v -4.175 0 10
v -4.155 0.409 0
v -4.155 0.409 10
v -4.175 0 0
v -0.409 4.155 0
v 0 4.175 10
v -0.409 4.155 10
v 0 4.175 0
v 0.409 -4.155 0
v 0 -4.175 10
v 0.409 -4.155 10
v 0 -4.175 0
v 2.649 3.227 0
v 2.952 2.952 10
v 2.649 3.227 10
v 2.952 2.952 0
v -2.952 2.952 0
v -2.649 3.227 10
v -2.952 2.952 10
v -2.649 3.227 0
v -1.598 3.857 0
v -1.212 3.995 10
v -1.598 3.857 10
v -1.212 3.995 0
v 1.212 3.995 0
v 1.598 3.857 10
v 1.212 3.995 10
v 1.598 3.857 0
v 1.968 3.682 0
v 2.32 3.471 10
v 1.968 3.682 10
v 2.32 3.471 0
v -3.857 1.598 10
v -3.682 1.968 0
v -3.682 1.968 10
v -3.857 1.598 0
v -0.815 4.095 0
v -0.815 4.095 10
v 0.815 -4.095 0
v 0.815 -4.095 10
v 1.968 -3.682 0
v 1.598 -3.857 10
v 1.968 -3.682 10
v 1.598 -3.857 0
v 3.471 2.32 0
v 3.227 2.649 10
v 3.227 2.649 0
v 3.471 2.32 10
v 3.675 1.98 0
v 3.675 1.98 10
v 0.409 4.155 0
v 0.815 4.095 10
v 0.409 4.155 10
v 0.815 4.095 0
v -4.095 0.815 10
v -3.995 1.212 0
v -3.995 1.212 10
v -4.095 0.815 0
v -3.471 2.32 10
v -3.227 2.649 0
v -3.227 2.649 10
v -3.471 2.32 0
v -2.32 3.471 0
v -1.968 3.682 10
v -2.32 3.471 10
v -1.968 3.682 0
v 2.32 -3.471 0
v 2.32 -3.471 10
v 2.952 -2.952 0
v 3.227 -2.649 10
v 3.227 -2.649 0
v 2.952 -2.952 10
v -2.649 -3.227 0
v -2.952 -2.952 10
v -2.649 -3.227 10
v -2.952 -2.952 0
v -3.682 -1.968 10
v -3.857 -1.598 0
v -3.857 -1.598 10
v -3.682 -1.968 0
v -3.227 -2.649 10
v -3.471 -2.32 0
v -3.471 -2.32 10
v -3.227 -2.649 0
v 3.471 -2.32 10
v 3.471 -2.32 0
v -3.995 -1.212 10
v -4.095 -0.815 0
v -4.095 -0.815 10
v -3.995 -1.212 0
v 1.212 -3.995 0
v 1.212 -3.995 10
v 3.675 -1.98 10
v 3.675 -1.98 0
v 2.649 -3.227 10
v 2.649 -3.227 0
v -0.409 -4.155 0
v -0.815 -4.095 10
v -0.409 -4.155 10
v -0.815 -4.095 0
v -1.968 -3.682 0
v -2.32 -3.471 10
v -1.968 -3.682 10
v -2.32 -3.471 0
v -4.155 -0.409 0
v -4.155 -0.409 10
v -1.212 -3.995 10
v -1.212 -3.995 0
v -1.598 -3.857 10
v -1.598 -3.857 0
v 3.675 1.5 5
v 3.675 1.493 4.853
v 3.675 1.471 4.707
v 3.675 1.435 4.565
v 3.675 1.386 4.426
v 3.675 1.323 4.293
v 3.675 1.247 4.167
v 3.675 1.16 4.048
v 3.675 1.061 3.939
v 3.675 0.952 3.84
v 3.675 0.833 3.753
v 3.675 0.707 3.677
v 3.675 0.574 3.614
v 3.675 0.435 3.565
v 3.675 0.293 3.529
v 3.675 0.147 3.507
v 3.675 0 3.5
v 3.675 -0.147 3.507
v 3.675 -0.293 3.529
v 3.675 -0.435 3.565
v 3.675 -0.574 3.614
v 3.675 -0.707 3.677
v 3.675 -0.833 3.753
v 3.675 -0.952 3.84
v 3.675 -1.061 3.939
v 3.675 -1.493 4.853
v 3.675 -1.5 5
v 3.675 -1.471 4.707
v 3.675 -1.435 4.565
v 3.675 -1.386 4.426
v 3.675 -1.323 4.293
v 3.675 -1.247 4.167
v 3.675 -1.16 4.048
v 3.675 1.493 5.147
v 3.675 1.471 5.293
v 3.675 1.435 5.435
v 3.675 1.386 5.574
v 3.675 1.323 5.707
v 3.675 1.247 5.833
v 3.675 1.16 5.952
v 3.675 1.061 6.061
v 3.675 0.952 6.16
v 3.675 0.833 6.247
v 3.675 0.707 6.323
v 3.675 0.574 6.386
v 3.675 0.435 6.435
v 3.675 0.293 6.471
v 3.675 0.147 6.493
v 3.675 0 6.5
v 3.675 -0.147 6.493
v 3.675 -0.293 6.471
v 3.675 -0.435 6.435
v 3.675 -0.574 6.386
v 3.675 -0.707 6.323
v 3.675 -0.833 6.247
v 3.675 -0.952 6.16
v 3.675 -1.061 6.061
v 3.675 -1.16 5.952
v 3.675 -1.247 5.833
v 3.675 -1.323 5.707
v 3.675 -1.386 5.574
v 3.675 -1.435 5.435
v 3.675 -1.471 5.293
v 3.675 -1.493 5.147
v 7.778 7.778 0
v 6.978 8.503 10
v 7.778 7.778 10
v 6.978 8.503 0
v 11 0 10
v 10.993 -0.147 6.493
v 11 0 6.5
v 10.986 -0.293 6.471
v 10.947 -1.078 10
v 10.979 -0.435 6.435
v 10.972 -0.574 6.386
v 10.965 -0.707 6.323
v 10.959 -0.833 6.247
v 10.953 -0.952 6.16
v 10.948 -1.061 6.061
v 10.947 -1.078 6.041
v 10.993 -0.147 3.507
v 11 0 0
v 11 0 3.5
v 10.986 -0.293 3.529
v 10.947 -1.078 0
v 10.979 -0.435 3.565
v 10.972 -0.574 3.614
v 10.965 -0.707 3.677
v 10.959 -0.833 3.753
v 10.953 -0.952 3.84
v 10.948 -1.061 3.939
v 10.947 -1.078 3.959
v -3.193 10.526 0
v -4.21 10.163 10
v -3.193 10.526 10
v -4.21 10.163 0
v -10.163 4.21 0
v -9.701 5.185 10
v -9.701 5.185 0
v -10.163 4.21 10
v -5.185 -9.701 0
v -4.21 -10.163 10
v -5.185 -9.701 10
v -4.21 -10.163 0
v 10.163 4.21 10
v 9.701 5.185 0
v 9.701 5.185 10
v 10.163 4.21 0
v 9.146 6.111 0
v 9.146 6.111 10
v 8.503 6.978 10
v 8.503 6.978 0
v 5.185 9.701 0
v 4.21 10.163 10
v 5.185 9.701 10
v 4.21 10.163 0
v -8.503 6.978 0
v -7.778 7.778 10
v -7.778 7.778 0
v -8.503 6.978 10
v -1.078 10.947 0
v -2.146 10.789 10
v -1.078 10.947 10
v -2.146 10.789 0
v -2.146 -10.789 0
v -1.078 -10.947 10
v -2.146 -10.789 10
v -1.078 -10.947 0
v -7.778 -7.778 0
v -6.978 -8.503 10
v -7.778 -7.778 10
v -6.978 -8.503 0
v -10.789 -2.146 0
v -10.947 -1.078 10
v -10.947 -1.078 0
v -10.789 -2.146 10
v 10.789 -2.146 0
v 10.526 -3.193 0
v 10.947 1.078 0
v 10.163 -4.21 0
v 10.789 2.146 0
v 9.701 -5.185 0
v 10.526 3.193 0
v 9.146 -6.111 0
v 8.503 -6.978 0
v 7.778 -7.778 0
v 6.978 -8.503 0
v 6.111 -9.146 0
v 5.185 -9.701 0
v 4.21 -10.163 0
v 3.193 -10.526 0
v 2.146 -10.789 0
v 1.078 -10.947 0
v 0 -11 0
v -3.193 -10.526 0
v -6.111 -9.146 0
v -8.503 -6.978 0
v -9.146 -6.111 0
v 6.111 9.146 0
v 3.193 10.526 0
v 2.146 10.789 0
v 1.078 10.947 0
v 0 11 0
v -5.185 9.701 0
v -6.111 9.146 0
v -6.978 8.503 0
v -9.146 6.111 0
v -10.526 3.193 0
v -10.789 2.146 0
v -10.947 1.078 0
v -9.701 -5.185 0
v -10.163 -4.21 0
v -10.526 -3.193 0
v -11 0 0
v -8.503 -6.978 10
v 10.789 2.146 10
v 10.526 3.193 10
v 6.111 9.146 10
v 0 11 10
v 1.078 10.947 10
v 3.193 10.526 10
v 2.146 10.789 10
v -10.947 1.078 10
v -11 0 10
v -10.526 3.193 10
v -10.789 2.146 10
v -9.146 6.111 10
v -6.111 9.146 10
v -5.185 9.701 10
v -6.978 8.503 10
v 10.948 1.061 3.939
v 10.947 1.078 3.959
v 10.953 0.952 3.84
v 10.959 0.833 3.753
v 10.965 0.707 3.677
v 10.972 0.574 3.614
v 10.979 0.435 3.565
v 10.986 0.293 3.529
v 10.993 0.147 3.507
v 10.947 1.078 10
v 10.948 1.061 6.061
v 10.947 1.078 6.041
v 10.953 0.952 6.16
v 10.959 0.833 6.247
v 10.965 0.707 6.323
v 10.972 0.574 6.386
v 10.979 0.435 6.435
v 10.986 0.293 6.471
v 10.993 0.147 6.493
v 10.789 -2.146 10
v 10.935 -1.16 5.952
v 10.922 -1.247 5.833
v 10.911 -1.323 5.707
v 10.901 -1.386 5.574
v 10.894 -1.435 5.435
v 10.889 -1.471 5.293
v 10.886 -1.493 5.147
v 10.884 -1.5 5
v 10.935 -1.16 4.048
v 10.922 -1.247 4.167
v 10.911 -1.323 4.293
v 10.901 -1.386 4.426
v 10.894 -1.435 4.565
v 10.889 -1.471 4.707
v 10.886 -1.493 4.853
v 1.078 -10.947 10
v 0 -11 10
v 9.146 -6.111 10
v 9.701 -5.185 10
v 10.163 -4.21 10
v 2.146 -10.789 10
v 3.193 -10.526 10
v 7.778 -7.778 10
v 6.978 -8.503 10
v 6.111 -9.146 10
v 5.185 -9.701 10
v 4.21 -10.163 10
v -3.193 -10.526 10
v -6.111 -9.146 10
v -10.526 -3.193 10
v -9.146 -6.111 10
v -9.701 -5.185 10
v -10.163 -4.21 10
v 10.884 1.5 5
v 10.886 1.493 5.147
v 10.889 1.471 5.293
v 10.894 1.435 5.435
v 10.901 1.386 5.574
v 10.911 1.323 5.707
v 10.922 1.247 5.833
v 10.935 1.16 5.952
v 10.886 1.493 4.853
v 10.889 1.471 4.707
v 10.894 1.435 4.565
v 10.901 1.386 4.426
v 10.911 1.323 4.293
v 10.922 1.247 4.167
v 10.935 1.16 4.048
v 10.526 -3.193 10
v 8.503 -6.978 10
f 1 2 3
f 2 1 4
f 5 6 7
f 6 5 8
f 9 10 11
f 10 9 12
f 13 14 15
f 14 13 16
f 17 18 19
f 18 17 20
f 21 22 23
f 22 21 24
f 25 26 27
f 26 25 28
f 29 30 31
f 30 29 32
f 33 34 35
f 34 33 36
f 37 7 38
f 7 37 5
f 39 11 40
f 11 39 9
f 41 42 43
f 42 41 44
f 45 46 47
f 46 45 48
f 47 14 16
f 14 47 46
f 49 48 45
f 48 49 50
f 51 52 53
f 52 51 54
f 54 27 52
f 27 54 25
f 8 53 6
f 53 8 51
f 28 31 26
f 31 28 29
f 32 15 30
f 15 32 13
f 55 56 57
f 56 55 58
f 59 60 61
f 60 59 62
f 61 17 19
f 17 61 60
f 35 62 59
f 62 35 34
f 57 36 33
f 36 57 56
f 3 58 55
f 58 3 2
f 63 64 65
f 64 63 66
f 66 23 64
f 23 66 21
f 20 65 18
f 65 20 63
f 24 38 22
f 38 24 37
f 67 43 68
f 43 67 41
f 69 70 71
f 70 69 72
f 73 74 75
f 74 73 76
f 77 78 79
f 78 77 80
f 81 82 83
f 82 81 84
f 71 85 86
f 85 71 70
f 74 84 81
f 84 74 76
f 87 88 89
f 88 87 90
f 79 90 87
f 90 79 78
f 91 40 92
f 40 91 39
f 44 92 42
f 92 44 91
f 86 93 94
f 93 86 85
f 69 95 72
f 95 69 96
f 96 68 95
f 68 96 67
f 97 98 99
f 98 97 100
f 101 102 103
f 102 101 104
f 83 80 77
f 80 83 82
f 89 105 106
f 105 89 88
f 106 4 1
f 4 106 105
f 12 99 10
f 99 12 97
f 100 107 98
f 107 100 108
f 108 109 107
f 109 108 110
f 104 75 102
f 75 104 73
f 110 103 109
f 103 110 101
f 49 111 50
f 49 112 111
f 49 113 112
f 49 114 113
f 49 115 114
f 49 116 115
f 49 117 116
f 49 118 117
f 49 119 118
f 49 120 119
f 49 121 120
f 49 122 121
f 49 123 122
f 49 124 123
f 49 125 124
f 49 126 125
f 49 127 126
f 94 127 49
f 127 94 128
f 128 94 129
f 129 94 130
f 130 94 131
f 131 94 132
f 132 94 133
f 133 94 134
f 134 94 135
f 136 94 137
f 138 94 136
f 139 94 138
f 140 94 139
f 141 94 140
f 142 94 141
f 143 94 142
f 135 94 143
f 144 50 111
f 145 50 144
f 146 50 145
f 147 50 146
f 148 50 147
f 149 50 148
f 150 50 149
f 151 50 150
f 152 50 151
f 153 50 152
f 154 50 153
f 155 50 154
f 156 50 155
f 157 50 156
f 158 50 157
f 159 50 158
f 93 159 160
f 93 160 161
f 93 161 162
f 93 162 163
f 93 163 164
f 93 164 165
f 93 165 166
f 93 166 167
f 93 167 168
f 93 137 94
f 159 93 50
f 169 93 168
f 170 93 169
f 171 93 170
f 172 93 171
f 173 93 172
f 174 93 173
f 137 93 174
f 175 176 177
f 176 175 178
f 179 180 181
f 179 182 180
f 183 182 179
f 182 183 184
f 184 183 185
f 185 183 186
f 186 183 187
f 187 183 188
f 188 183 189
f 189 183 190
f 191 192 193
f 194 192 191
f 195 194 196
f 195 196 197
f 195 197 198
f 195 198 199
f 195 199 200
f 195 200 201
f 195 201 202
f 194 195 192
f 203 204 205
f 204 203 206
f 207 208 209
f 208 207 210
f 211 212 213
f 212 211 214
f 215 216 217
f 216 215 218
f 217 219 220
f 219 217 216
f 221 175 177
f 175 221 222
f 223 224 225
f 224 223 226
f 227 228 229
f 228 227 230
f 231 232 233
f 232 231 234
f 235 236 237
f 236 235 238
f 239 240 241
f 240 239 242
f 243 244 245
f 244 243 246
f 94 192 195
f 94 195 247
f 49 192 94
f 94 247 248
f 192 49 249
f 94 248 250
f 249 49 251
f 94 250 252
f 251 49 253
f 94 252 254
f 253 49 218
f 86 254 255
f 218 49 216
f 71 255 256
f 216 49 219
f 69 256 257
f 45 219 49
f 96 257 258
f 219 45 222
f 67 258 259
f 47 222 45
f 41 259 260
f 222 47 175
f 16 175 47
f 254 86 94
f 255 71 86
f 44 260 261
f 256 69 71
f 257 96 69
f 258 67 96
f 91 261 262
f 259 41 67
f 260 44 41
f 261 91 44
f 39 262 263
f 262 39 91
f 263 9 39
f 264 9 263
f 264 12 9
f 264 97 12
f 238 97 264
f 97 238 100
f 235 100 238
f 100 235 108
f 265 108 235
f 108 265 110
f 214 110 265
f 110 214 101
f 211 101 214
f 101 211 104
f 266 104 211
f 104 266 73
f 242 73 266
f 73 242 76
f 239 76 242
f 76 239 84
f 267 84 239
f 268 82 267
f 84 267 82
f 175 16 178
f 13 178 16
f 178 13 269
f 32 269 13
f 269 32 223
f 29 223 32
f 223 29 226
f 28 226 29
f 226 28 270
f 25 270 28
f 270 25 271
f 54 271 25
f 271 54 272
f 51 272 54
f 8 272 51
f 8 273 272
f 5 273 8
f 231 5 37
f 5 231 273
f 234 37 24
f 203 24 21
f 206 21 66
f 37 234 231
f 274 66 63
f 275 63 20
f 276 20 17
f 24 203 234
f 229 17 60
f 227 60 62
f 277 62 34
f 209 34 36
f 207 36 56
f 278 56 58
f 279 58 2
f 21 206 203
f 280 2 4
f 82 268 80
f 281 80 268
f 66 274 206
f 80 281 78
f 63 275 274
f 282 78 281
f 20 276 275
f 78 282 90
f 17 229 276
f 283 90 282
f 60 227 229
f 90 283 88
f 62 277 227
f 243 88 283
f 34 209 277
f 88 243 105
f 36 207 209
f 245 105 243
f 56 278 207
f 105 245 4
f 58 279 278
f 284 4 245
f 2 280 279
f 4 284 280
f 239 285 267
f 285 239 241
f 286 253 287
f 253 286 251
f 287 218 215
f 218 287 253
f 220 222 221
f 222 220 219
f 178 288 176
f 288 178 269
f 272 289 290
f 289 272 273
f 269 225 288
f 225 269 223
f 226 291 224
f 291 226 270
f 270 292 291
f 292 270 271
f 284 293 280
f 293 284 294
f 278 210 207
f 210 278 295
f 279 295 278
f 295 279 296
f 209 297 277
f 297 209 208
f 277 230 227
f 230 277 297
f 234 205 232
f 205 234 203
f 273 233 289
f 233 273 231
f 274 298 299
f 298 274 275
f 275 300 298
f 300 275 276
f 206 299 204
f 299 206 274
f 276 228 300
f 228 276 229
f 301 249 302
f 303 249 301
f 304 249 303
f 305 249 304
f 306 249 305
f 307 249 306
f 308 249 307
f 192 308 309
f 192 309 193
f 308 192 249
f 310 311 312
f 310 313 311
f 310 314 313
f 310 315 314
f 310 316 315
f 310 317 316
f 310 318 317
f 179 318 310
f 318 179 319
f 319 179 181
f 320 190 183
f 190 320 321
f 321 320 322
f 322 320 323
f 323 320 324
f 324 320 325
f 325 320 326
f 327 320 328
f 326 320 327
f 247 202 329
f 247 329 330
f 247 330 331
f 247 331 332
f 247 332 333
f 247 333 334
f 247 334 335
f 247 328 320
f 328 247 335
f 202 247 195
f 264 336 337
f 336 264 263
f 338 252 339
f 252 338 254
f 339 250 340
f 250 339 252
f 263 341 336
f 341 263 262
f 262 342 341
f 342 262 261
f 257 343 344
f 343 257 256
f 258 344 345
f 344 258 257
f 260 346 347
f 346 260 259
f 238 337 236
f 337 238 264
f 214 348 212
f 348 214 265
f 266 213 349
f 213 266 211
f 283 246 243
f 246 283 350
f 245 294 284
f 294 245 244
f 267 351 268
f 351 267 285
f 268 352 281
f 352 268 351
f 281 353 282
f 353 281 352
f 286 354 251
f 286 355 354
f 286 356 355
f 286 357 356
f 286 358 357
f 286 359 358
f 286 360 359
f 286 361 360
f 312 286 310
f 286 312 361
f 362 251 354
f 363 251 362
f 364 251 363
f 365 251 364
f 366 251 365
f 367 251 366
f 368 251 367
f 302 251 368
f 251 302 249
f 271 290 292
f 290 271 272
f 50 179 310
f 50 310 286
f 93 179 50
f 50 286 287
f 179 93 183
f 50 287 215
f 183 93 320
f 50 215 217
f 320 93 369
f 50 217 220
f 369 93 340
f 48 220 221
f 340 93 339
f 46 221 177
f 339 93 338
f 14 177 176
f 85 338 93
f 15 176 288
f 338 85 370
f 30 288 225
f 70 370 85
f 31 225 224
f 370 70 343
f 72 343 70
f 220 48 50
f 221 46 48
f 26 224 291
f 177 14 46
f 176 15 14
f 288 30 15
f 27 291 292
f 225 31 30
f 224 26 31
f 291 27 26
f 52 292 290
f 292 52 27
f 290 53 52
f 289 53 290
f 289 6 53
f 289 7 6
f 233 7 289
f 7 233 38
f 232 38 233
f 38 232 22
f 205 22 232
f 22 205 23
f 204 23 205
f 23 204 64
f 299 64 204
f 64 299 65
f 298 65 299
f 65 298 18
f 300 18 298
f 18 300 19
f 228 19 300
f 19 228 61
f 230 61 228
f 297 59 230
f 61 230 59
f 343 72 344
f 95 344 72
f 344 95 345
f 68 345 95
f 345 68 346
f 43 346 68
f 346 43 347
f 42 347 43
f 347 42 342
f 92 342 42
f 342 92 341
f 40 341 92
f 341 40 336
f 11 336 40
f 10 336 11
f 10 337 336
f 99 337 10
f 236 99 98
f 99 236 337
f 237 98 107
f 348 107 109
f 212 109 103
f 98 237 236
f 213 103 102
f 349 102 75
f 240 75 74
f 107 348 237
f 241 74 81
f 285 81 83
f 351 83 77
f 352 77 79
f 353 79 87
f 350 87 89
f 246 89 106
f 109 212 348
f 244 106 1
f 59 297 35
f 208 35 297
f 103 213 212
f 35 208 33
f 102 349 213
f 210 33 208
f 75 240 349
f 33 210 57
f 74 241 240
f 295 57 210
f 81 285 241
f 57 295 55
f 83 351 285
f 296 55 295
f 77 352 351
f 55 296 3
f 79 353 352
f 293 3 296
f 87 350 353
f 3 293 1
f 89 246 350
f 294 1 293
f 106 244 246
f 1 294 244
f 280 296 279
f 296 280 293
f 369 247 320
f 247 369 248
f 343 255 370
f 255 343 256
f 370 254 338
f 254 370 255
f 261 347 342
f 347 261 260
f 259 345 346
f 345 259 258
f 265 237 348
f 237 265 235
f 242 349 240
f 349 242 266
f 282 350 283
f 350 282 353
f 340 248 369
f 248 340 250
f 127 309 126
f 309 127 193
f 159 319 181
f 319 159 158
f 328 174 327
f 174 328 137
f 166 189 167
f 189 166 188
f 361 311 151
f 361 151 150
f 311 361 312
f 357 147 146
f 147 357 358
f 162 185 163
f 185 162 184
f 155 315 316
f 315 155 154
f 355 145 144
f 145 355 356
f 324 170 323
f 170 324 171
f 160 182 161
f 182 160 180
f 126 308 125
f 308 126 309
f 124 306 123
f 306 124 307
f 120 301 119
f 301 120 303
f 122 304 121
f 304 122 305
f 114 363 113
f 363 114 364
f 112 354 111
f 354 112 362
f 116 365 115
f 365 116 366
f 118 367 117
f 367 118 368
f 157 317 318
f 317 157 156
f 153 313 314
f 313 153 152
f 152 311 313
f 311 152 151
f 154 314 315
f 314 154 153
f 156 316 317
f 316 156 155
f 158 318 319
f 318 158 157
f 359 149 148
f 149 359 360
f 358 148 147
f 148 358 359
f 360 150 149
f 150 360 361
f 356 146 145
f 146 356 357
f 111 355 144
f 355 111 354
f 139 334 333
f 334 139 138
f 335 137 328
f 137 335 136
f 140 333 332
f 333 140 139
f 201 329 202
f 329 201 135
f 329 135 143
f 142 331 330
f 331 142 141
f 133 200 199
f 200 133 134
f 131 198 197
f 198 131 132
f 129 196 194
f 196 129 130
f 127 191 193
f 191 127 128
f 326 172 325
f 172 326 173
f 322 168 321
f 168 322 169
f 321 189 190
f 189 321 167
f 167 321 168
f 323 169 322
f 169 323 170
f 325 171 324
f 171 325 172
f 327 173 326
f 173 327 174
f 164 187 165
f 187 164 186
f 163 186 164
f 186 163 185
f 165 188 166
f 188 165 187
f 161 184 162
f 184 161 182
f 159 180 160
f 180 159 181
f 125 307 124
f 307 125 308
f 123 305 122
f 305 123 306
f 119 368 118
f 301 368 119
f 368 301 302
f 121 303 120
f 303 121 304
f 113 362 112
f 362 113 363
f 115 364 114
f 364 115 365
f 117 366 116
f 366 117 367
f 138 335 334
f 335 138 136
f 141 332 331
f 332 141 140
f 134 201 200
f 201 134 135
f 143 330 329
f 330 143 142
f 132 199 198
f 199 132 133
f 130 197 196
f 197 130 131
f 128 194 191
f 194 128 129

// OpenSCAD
// file: parameters.scad
// =============================================================================
// Gen-CC — nightly 2026-10-13 (physics_scorer, honest magpylib watts)
// Stator-only upgrade for an existing Gen-BX: the R71 rotors and Ø168 steel stay as they are; a new annular 12-bobbin stator with 6.3 mm copper (magnet gap 9.35 → 8.90 mm) and longer r52–90 bobbins (the open-centre stator now packs one size up) replaces the old one, together with a shorter gap sleeve, frame rods moved out to R93.5 and new bearing bridges. No new magnets or steel.
// Clocking 0 deg (magnets N facing S) + D-flat keyed bore + index notch + flip-symmetric hole map.
// Windable 2-piece bobbin; turns = physics_scorer turns_fit; copper only between flanges.
// Steel back-iron: 2× Ø168 × 4.76 mm (3/16") mild-steel discs (steel_backiron_disc.dxf); magnets sit ON the steel
// (through-pockets) -> score with --back-iron. Night 2026-10-13.
// =============================================================================
topology            = "dual_rotor";

// --- Wire / winding (physics_scorer winding-fit) -------------------------------
wire_awg            = 26;
wire_od             = 0.45;     // insulated OD mm (bare 0.405)
fill_realistic      = 0.65;     // insulated-wire area / window (DENSE layered wind with a jig; scorer cap 0.65)
turns               = 391;       // = physics_scorer turns_fit (do NOT raise)
coil_former_type    = "bobbin";
coil_core_inset     = 15.20;     // radial copper build: hub = copper boundary inset by this
wind_build_axial    = 0.0;      // nothing proud of the flanges
wind_build_radial   = 0.0;

// --- Bobbin (base + lid) ---------------------------------------------------------
coil_id_r           = 52.00;    // copper boundary sector
coil_od_r           = 90.00;
span_deg            = 26.36;    // = pitch - 2*asin((wall+0.85)/coil_id_r) -> >=1.2 mm stator web
former_web          = 6.30;     // copper height between flanges (TALL copper: steel keeps Bz up)
flange_t            = 0.80;     // >= 0.8 mm FDM wall rule (tall winds push on the flanges)
wall                = 0.80;     // flange lip beyond copper
former_bare_h       = former_web + 2 * flange_t;
coil_envelope_h     = former_bare_h + 2 * wind_build_axial;
tab_w               = 7.0;
tab_len             = 7.0;
tab_h               = former_bare_h / 2;
pin_d               = 1.9;      // 1.75 mm filament locating pin
coil_mount_r        = coil_od_r + 0.2 + 4.0;
lead_y              = 1.6;
lead_slot_w         = 0.9;
lead_groove_d       = 0.6;

// --- Gap -------------------------------------------------------------------------
run_clear           = 0.50;     // rotor face -> flange
gap_spacer_h        = run_clear + wind_build_axial;
m2m                 = coil_envelope_h + 2 * run_clear;   // rotor face to rotor face (= gap_sleeve length)

// --- Stator ----------------------------------------------------------------------
coil_stations       = 12;
bay_clear           = 0.25;
stator_thick        = former_bare_h;                        // bobbins flush both faces
stator_od           = 198;
shaft_clear_stator  = 14.0;     // stator is static; gap sleeve OD 12 spins inside
stator_ir           = 46.95;    // ANNULAR stator: open centre (nested one-plate pack); inner rim 4.0 mm

// --- Rotor(s) --------------------------------------------------------------------
magnet_Br           = 1.43;     // N52
magnet_d_large      = 20.0;
magnet_h_large      = 5.0;      // one O20x5 per pocket
magnet_h_small      = 5.0;      // unused: no O5 pockets in this kit
halbach_magnetisation = "none";  // NO O5 assist magnets in this kit (scan: they lower the 4-pole score)
rotor_b_same_axis   = true;     // same-index magnets share one axis: N faces S across the gap
large_pocket_d      = 20.3;
small_pocket_d      = 5.3;
pocket_h            = 5.00;     // THROUGH the carrier: magnet back face sits on the steel disc (FLUSH seat: carrier = magnet height, magnet face level with the rotor face)
large_n             = 8;
R_large             = 71.0;
small_r_list        = [];       // no O5 pockets
carrier_od          = 168.0;
carrier_thick       = pocket_h;
hub_h               = 12.0;     // > steel_t + insert: radial set-screw clears the steel
hub_od              = 24.0;     // slim hub so the M4 brace rods fit at R~18 inside the coil ring
hub_insert_d        = 4.0;      // M3 heat-set insert, radial, bears on the D-flat
rotor_b_offset_deg  = 0.0;      // CLOCKING: magnets directly opposite
shaft_key           = "dflat";
dflat_depth         = 0.5;      // 8 mm shaft with 0.5 mm flat (7.5 across flat)
index_notch_d       = 3.0;

// --- Steel back-iron (buyable laser-cut) -------------------------------------------
steel_t             = 4.76;      // mild steel thickness (image method ignores it; sized from steel_flux.py so the return path stays well below saturation)
steel_center_hole   = 26.0;     // slips over the rotor hub (OD 24)
steel_od            = carrier_od;   // steel disc OD = rotor carrier OD

// --- Modular MAX interface ----------------------------------------------------------
shaft_bore          = 8.35;
dflat_x             = 4.0 - dflat_depth + (shaft_bore - 8.0) / 2;
bearing_d           = 21.85;
bearing_h           = 7.2;
m3_clear            = 3.5;
bolt_r_inner        = 30.0;     // M3 steel-disc clamp bolts (inside the magnet ring)
bolt_n_inner        = 4;
bolt_inner_angles   = [0, 90, 180, 270];
bolt_r_outer        = 44.0;     // second M3 steel-disc clamp ring
bolt_outer_angles   = [67.5, 112.5, 247.5, 292.5];
flange_bolt_r       = 93.5;     // frame rods: OUTSIDE the rotor OD (rotors spin inside them)
flange_bolt_n       = 4;
flange_bolt_offset  = 45.00;    // between coil stations -> never cuts a lead groove/tab
brace_r             = 18.0;
brace_d             = 4.3;      // temporary M4 jack rods (assembly only)
brace_n             = 4;
brace_angles        = [45, 135, 225, 315];          // flip-symmetric

spacer_pad_od       = 14.0;
spacer_pad_id       = m3_clear;
endbell_od          = 197.0;
endbell_thick       = 8.0;
endbell_shaft_clear = 10.0;
collar_h            = 10.0;
standoff_od         = 9.0;
frame_standoff_h    = run_clear + carrier_thick + hub_h + collar_h + 2.0;
sleeve_od           = 12.0;
plate_max_mm        = 410;

$fn = 64;
// main file
// Gen-CC — shaft collar with D-flat bore (set screw bears on the flat); print x4
include <parameters.scad>;
$fn = 64;
// D-flat keyed bore: flat faces +X (angle 0 = magnet pocket 0 = index notch)
module dflat_bore(h) {
    intersection() {
        cylinder(d=shaft_bore, h=h);
        translate([-shaft_bore, -shaft_bore, 0]) cube([shaft_bore + dflat_x, 2*shaft_bore, h]);
    }
}

od = 22; h = collar_h; set_d = 3.0;
difference() {
    cylinder(d=od, h=h);
    translate([0, 0, -0.1]) dflat_bore(h + 0.2);
    translate([0, 0, h/2]) rotate([0, 90, 0]) cylinder(d=set_d, h=od);
}
